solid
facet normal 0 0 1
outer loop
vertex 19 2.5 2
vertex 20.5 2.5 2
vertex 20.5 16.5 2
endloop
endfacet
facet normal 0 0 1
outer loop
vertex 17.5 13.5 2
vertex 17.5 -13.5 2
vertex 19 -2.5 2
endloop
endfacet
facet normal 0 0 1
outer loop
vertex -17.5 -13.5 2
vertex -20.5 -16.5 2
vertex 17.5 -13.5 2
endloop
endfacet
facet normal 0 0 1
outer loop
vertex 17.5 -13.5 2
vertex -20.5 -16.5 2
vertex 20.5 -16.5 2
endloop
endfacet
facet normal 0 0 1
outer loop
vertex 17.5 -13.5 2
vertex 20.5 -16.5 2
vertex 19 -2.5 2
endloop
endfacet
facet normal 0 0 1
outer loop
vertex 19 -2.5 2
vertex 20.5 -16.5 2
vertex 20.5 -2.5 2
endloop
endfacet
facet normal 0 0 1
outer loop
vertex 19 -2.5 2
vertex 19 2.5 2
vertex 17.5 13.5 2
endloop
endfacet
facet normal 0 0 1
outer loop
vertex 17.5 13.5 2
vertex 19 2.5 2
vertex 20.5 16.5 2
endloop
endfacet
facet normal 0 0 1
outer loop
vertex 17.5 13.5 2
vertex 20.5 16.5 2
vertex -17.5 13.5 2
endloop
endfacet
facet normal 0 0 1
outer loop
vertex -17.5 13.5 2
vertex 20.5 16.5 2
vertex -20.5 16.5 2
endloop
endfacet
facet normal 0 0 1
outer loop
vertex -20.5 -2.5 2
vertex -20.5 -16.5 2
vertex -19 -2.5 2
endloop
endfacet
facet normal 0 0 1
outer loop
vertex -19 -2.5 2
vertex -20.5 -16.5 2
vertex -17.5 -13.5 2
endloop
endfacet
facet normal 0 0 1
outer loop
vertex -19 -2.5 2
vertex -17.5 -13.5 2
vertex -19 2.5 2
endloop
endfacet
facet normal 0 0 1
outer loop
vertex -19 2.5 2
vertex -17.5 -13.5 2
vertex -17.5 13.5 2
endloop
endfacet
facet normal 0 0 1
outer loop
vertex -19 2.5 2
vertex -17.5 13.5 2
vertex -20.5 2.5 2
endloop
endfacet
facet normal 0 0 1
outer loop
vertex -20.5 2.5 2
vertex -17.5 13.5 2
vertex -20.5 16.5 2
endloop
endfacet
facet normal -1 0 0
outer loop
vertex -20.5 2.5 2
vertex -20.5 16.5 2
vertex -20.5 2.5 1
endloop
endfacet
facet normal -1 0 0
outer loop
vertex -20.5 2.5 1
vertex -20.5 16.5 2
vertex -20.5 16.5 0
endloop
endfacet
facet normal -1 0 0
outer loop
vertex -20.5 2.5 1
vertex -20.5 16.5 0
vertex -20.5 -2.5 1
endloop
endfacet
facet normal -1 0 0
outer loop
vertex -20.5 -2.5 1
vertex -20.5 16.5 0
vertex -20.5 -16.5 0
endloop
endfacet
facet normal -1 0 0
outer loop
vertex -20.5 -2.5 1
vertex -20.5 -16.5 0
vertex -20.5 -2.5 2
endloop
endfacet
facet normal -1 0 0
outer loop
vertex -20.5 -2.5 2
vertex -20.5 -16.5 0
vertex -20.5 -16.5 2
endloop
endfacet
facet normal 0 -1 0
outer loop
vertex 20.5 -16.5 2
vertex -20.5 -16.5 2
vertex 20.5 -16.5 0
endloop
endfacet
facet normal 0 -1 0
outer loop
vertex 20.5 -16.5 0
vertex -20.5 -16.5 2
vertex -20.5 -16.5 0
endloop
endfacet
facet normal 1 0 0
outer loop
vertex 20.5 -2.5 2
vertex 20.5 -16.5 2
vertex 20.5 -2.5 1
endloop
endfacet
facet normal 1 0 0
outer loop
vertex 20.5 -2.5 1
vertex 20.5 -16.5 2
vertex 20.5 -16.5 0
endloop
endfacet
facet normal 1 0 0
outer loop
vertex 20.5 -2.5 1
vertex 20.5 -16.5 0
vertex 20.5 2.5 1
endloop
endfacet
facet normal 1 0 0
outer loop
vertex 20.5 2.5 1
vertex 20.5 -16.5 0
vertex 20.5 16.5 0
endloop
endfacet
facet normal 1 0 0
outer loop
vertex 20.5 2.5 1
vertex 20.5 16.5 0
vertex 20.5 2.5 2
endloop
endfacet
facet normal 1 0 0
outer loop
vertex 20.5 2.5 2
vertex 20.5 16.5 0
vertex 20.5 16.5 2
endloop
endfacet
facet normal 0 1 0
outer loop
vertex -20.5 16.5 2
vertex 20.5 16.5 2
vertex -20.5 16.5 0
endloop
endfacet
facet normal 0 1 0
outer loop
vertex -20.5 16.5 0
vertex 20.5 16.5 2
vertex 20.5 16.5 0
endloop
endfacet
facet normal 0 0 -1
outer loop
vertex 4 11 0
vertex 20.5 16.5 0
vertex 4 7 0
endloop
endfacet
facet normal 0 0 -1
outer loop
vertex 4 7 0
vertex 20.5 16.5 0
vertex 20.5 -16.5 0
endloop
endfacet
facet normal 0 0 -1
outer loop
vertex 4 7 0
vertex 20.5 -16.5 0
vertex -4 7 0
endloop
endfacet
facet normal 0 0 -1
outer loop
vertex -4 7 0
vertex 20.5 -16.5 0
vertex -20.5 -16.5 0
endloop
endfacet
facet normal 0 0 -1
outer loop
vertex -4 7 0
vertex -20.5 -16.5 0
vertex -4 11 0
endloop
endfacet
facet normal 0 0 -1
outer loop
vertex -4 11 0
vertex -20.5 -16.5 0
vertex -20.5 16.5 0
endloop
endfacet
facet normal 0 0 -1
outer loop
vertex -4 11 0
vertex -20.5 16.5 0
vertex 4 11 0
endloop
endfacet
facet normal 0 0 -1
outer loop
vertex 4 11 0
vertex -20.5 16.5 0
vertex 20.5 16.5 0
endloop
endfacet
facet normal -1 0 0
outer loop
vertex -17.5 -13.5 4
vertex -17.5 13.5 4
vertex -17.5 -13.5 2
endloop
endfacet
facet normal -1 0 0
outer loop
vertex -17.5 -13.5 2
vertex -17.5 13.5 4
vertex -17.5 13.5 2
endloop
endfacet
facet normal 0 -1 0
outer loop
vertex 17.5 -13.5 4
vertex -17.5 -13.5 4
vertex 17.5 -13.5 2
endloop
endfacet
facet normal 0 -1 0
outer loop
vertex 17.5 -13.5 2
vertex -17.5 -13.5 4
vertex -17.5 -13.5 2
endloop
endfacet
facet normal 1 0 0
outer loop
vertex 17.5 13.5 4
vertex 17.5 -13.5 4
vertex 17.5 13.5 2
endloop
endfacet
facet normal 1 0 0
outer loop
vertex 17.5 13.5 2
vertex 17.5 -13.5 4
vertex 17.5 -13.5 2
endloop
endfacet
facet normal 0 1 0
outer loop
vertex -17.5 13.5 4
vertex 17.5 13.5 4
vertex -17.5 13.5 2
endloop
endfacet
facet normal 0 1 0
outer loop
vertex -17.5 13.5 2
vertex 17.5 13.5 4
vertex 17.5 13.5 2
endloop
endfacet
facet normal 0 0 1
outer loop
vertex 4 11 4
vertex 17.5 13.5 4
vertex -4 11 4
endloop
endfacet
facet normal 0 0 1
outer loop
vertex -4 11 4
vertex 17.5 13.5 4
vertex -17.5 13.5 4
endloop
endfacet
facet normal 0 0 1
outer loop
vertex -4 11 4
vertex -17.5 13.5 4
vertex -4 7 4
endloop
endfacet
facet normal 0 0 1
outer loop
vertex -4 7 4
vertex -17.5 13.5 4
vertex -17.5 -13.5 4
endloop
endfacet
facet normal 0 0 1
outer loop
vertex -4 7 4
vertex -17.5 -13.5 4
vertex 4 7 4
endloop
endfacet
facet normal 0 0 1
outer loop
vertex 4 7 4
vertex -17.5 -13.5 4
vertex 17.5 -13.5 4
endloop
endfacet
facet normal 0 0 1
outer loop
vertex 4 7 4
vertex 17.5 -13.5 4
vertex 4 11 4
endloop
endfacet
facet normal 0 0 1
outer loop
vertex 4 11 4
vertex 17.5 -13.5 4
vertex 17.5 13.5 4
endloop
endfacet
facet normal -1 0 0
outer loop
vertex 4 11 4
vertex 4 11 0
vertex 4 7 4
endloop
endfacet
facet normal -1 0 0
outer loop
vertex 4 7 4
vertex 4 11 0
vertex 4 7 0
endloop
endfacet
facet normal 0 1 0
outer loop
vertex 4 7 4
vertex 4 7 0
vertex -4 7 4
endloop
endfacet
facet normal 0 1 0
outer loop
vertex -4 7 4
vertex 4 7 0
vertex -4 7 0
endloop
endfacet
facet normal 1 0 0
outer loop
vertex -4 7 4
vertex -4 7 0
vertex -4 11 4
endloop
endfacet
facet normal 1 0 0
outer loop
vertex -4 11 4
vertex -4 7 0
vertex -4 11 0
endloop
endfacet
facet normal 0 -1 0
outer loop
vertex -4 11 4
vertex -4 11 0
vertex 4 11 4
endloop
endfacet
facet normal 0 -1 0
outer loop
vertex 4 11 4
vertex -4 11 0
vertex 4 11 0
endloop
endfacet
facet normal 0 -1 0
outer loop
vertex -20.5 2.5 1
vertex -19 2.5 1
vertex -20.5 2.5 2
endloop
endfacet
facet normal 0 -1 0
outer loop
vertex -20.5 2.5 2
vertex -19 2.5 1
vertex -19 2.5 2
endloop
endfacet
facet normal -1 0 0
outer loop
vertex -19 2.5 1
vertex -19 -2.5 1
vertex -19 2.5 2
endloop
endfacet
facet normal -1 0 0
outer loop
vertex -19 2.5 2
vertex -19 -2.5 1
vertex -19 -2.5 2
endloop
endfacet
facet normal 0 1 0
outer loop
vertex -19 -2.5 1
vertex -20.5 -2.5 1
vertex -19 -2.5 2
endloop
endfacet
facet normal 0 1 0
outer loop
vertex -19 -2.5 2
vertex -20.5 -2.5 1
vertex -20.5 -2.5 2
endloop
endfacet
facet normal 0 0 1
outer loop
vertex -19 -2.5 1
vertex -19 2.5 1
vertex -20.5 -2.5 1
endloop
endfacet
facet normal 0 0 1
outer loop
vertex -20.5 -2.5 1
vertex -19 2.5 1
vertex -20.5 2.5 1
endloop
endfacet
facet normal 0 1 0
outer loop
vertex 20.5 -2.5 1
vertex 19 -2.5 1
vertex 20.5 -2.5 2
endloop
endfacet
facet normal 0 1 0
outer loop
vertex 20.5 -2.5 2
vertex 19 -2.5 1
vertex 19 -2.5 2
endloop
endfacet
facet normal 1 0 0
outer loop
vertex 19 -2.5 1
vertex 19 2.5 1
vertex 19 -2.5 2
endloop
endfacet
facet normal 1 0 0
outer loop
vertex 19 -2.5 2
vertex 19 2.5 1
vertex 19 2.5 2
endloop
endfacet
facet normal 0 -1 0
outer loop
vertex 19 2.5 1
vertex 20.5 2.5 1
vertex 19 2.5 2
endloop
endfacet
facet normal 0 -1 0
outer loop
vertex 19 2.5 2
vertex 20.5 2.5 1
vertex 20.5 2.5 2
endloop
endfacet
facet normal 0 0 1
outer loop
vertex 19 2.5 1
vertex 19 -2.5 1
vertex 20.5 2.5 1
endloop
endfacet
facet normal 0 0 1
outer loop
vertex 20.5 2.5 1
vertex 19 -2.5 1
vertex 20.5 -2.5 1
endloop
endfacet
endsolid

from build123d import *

# Parameters (mm, degrees)
SKETCH_1_W          = 41
SKETCH_1_H          = 33
EXTRUDE_1_DEPTH     = 2
SKETCH_2_W          = 35
SKETCH_2_H          = 27
EXTRUDE_2_DEPTH     = 2
SKETCH_3_W          = 8
SKETCH_3_H          = 4
CUT_EXTRUDE_1_DEPTH = 5
SKETCH_5_W          = 1.5
SKETCH_5_H          = 5
CUT_EXTRUDE_2_DEPTH = 1


with BuildPart() as part:
    # Эскиз1 → Бобышка-Вытянуть1 (new body)
    with BuildSketch(Plane.XY):
        Rectangle(SKETCH_1_W, SKETCH_1_H)
    extrude(amount=EXTRUDE_1_DEPTH)

    # Эскиз2 → Бобышка-Вытянуть2 (add)
    with BuildSketch(Plane.XY.offset(2)):
        Rectangle(SKETCH_2_W, SKETCH_2_H)
    extrude(amount=EXTRUDE_2_DEPTH)

    # Эскиз3 → Вырез-Вытянуть1 (cut)
    with BuildSketch(Plane.XY.offset(4)):
        with Locations((0, 9)):
            Rectangle(SKETCH_3_W, SKETCH_3_H)
    extrude(amount=-CUT_EXTRUDE_1_DEPTH, mode=Mode.SUBTRACT)

    # Эскиз5 → Вырез-Вытянуть2 (cut)
    with BuildSketch(Plane.XY.offset(2)):
        with Locations((-19.75, 0)):
            Rectangle(SKETCH_5_W, SKETCH_5_H)
        with Locations((19.75, 0)):
            Rectangle(SKETCH_5_W, SKETCH_5_H)
    extrude(amount=-CUT_EXTRUDE_2_DEPTH, mode=Mode.SUBTRACT)


solid = part.part
